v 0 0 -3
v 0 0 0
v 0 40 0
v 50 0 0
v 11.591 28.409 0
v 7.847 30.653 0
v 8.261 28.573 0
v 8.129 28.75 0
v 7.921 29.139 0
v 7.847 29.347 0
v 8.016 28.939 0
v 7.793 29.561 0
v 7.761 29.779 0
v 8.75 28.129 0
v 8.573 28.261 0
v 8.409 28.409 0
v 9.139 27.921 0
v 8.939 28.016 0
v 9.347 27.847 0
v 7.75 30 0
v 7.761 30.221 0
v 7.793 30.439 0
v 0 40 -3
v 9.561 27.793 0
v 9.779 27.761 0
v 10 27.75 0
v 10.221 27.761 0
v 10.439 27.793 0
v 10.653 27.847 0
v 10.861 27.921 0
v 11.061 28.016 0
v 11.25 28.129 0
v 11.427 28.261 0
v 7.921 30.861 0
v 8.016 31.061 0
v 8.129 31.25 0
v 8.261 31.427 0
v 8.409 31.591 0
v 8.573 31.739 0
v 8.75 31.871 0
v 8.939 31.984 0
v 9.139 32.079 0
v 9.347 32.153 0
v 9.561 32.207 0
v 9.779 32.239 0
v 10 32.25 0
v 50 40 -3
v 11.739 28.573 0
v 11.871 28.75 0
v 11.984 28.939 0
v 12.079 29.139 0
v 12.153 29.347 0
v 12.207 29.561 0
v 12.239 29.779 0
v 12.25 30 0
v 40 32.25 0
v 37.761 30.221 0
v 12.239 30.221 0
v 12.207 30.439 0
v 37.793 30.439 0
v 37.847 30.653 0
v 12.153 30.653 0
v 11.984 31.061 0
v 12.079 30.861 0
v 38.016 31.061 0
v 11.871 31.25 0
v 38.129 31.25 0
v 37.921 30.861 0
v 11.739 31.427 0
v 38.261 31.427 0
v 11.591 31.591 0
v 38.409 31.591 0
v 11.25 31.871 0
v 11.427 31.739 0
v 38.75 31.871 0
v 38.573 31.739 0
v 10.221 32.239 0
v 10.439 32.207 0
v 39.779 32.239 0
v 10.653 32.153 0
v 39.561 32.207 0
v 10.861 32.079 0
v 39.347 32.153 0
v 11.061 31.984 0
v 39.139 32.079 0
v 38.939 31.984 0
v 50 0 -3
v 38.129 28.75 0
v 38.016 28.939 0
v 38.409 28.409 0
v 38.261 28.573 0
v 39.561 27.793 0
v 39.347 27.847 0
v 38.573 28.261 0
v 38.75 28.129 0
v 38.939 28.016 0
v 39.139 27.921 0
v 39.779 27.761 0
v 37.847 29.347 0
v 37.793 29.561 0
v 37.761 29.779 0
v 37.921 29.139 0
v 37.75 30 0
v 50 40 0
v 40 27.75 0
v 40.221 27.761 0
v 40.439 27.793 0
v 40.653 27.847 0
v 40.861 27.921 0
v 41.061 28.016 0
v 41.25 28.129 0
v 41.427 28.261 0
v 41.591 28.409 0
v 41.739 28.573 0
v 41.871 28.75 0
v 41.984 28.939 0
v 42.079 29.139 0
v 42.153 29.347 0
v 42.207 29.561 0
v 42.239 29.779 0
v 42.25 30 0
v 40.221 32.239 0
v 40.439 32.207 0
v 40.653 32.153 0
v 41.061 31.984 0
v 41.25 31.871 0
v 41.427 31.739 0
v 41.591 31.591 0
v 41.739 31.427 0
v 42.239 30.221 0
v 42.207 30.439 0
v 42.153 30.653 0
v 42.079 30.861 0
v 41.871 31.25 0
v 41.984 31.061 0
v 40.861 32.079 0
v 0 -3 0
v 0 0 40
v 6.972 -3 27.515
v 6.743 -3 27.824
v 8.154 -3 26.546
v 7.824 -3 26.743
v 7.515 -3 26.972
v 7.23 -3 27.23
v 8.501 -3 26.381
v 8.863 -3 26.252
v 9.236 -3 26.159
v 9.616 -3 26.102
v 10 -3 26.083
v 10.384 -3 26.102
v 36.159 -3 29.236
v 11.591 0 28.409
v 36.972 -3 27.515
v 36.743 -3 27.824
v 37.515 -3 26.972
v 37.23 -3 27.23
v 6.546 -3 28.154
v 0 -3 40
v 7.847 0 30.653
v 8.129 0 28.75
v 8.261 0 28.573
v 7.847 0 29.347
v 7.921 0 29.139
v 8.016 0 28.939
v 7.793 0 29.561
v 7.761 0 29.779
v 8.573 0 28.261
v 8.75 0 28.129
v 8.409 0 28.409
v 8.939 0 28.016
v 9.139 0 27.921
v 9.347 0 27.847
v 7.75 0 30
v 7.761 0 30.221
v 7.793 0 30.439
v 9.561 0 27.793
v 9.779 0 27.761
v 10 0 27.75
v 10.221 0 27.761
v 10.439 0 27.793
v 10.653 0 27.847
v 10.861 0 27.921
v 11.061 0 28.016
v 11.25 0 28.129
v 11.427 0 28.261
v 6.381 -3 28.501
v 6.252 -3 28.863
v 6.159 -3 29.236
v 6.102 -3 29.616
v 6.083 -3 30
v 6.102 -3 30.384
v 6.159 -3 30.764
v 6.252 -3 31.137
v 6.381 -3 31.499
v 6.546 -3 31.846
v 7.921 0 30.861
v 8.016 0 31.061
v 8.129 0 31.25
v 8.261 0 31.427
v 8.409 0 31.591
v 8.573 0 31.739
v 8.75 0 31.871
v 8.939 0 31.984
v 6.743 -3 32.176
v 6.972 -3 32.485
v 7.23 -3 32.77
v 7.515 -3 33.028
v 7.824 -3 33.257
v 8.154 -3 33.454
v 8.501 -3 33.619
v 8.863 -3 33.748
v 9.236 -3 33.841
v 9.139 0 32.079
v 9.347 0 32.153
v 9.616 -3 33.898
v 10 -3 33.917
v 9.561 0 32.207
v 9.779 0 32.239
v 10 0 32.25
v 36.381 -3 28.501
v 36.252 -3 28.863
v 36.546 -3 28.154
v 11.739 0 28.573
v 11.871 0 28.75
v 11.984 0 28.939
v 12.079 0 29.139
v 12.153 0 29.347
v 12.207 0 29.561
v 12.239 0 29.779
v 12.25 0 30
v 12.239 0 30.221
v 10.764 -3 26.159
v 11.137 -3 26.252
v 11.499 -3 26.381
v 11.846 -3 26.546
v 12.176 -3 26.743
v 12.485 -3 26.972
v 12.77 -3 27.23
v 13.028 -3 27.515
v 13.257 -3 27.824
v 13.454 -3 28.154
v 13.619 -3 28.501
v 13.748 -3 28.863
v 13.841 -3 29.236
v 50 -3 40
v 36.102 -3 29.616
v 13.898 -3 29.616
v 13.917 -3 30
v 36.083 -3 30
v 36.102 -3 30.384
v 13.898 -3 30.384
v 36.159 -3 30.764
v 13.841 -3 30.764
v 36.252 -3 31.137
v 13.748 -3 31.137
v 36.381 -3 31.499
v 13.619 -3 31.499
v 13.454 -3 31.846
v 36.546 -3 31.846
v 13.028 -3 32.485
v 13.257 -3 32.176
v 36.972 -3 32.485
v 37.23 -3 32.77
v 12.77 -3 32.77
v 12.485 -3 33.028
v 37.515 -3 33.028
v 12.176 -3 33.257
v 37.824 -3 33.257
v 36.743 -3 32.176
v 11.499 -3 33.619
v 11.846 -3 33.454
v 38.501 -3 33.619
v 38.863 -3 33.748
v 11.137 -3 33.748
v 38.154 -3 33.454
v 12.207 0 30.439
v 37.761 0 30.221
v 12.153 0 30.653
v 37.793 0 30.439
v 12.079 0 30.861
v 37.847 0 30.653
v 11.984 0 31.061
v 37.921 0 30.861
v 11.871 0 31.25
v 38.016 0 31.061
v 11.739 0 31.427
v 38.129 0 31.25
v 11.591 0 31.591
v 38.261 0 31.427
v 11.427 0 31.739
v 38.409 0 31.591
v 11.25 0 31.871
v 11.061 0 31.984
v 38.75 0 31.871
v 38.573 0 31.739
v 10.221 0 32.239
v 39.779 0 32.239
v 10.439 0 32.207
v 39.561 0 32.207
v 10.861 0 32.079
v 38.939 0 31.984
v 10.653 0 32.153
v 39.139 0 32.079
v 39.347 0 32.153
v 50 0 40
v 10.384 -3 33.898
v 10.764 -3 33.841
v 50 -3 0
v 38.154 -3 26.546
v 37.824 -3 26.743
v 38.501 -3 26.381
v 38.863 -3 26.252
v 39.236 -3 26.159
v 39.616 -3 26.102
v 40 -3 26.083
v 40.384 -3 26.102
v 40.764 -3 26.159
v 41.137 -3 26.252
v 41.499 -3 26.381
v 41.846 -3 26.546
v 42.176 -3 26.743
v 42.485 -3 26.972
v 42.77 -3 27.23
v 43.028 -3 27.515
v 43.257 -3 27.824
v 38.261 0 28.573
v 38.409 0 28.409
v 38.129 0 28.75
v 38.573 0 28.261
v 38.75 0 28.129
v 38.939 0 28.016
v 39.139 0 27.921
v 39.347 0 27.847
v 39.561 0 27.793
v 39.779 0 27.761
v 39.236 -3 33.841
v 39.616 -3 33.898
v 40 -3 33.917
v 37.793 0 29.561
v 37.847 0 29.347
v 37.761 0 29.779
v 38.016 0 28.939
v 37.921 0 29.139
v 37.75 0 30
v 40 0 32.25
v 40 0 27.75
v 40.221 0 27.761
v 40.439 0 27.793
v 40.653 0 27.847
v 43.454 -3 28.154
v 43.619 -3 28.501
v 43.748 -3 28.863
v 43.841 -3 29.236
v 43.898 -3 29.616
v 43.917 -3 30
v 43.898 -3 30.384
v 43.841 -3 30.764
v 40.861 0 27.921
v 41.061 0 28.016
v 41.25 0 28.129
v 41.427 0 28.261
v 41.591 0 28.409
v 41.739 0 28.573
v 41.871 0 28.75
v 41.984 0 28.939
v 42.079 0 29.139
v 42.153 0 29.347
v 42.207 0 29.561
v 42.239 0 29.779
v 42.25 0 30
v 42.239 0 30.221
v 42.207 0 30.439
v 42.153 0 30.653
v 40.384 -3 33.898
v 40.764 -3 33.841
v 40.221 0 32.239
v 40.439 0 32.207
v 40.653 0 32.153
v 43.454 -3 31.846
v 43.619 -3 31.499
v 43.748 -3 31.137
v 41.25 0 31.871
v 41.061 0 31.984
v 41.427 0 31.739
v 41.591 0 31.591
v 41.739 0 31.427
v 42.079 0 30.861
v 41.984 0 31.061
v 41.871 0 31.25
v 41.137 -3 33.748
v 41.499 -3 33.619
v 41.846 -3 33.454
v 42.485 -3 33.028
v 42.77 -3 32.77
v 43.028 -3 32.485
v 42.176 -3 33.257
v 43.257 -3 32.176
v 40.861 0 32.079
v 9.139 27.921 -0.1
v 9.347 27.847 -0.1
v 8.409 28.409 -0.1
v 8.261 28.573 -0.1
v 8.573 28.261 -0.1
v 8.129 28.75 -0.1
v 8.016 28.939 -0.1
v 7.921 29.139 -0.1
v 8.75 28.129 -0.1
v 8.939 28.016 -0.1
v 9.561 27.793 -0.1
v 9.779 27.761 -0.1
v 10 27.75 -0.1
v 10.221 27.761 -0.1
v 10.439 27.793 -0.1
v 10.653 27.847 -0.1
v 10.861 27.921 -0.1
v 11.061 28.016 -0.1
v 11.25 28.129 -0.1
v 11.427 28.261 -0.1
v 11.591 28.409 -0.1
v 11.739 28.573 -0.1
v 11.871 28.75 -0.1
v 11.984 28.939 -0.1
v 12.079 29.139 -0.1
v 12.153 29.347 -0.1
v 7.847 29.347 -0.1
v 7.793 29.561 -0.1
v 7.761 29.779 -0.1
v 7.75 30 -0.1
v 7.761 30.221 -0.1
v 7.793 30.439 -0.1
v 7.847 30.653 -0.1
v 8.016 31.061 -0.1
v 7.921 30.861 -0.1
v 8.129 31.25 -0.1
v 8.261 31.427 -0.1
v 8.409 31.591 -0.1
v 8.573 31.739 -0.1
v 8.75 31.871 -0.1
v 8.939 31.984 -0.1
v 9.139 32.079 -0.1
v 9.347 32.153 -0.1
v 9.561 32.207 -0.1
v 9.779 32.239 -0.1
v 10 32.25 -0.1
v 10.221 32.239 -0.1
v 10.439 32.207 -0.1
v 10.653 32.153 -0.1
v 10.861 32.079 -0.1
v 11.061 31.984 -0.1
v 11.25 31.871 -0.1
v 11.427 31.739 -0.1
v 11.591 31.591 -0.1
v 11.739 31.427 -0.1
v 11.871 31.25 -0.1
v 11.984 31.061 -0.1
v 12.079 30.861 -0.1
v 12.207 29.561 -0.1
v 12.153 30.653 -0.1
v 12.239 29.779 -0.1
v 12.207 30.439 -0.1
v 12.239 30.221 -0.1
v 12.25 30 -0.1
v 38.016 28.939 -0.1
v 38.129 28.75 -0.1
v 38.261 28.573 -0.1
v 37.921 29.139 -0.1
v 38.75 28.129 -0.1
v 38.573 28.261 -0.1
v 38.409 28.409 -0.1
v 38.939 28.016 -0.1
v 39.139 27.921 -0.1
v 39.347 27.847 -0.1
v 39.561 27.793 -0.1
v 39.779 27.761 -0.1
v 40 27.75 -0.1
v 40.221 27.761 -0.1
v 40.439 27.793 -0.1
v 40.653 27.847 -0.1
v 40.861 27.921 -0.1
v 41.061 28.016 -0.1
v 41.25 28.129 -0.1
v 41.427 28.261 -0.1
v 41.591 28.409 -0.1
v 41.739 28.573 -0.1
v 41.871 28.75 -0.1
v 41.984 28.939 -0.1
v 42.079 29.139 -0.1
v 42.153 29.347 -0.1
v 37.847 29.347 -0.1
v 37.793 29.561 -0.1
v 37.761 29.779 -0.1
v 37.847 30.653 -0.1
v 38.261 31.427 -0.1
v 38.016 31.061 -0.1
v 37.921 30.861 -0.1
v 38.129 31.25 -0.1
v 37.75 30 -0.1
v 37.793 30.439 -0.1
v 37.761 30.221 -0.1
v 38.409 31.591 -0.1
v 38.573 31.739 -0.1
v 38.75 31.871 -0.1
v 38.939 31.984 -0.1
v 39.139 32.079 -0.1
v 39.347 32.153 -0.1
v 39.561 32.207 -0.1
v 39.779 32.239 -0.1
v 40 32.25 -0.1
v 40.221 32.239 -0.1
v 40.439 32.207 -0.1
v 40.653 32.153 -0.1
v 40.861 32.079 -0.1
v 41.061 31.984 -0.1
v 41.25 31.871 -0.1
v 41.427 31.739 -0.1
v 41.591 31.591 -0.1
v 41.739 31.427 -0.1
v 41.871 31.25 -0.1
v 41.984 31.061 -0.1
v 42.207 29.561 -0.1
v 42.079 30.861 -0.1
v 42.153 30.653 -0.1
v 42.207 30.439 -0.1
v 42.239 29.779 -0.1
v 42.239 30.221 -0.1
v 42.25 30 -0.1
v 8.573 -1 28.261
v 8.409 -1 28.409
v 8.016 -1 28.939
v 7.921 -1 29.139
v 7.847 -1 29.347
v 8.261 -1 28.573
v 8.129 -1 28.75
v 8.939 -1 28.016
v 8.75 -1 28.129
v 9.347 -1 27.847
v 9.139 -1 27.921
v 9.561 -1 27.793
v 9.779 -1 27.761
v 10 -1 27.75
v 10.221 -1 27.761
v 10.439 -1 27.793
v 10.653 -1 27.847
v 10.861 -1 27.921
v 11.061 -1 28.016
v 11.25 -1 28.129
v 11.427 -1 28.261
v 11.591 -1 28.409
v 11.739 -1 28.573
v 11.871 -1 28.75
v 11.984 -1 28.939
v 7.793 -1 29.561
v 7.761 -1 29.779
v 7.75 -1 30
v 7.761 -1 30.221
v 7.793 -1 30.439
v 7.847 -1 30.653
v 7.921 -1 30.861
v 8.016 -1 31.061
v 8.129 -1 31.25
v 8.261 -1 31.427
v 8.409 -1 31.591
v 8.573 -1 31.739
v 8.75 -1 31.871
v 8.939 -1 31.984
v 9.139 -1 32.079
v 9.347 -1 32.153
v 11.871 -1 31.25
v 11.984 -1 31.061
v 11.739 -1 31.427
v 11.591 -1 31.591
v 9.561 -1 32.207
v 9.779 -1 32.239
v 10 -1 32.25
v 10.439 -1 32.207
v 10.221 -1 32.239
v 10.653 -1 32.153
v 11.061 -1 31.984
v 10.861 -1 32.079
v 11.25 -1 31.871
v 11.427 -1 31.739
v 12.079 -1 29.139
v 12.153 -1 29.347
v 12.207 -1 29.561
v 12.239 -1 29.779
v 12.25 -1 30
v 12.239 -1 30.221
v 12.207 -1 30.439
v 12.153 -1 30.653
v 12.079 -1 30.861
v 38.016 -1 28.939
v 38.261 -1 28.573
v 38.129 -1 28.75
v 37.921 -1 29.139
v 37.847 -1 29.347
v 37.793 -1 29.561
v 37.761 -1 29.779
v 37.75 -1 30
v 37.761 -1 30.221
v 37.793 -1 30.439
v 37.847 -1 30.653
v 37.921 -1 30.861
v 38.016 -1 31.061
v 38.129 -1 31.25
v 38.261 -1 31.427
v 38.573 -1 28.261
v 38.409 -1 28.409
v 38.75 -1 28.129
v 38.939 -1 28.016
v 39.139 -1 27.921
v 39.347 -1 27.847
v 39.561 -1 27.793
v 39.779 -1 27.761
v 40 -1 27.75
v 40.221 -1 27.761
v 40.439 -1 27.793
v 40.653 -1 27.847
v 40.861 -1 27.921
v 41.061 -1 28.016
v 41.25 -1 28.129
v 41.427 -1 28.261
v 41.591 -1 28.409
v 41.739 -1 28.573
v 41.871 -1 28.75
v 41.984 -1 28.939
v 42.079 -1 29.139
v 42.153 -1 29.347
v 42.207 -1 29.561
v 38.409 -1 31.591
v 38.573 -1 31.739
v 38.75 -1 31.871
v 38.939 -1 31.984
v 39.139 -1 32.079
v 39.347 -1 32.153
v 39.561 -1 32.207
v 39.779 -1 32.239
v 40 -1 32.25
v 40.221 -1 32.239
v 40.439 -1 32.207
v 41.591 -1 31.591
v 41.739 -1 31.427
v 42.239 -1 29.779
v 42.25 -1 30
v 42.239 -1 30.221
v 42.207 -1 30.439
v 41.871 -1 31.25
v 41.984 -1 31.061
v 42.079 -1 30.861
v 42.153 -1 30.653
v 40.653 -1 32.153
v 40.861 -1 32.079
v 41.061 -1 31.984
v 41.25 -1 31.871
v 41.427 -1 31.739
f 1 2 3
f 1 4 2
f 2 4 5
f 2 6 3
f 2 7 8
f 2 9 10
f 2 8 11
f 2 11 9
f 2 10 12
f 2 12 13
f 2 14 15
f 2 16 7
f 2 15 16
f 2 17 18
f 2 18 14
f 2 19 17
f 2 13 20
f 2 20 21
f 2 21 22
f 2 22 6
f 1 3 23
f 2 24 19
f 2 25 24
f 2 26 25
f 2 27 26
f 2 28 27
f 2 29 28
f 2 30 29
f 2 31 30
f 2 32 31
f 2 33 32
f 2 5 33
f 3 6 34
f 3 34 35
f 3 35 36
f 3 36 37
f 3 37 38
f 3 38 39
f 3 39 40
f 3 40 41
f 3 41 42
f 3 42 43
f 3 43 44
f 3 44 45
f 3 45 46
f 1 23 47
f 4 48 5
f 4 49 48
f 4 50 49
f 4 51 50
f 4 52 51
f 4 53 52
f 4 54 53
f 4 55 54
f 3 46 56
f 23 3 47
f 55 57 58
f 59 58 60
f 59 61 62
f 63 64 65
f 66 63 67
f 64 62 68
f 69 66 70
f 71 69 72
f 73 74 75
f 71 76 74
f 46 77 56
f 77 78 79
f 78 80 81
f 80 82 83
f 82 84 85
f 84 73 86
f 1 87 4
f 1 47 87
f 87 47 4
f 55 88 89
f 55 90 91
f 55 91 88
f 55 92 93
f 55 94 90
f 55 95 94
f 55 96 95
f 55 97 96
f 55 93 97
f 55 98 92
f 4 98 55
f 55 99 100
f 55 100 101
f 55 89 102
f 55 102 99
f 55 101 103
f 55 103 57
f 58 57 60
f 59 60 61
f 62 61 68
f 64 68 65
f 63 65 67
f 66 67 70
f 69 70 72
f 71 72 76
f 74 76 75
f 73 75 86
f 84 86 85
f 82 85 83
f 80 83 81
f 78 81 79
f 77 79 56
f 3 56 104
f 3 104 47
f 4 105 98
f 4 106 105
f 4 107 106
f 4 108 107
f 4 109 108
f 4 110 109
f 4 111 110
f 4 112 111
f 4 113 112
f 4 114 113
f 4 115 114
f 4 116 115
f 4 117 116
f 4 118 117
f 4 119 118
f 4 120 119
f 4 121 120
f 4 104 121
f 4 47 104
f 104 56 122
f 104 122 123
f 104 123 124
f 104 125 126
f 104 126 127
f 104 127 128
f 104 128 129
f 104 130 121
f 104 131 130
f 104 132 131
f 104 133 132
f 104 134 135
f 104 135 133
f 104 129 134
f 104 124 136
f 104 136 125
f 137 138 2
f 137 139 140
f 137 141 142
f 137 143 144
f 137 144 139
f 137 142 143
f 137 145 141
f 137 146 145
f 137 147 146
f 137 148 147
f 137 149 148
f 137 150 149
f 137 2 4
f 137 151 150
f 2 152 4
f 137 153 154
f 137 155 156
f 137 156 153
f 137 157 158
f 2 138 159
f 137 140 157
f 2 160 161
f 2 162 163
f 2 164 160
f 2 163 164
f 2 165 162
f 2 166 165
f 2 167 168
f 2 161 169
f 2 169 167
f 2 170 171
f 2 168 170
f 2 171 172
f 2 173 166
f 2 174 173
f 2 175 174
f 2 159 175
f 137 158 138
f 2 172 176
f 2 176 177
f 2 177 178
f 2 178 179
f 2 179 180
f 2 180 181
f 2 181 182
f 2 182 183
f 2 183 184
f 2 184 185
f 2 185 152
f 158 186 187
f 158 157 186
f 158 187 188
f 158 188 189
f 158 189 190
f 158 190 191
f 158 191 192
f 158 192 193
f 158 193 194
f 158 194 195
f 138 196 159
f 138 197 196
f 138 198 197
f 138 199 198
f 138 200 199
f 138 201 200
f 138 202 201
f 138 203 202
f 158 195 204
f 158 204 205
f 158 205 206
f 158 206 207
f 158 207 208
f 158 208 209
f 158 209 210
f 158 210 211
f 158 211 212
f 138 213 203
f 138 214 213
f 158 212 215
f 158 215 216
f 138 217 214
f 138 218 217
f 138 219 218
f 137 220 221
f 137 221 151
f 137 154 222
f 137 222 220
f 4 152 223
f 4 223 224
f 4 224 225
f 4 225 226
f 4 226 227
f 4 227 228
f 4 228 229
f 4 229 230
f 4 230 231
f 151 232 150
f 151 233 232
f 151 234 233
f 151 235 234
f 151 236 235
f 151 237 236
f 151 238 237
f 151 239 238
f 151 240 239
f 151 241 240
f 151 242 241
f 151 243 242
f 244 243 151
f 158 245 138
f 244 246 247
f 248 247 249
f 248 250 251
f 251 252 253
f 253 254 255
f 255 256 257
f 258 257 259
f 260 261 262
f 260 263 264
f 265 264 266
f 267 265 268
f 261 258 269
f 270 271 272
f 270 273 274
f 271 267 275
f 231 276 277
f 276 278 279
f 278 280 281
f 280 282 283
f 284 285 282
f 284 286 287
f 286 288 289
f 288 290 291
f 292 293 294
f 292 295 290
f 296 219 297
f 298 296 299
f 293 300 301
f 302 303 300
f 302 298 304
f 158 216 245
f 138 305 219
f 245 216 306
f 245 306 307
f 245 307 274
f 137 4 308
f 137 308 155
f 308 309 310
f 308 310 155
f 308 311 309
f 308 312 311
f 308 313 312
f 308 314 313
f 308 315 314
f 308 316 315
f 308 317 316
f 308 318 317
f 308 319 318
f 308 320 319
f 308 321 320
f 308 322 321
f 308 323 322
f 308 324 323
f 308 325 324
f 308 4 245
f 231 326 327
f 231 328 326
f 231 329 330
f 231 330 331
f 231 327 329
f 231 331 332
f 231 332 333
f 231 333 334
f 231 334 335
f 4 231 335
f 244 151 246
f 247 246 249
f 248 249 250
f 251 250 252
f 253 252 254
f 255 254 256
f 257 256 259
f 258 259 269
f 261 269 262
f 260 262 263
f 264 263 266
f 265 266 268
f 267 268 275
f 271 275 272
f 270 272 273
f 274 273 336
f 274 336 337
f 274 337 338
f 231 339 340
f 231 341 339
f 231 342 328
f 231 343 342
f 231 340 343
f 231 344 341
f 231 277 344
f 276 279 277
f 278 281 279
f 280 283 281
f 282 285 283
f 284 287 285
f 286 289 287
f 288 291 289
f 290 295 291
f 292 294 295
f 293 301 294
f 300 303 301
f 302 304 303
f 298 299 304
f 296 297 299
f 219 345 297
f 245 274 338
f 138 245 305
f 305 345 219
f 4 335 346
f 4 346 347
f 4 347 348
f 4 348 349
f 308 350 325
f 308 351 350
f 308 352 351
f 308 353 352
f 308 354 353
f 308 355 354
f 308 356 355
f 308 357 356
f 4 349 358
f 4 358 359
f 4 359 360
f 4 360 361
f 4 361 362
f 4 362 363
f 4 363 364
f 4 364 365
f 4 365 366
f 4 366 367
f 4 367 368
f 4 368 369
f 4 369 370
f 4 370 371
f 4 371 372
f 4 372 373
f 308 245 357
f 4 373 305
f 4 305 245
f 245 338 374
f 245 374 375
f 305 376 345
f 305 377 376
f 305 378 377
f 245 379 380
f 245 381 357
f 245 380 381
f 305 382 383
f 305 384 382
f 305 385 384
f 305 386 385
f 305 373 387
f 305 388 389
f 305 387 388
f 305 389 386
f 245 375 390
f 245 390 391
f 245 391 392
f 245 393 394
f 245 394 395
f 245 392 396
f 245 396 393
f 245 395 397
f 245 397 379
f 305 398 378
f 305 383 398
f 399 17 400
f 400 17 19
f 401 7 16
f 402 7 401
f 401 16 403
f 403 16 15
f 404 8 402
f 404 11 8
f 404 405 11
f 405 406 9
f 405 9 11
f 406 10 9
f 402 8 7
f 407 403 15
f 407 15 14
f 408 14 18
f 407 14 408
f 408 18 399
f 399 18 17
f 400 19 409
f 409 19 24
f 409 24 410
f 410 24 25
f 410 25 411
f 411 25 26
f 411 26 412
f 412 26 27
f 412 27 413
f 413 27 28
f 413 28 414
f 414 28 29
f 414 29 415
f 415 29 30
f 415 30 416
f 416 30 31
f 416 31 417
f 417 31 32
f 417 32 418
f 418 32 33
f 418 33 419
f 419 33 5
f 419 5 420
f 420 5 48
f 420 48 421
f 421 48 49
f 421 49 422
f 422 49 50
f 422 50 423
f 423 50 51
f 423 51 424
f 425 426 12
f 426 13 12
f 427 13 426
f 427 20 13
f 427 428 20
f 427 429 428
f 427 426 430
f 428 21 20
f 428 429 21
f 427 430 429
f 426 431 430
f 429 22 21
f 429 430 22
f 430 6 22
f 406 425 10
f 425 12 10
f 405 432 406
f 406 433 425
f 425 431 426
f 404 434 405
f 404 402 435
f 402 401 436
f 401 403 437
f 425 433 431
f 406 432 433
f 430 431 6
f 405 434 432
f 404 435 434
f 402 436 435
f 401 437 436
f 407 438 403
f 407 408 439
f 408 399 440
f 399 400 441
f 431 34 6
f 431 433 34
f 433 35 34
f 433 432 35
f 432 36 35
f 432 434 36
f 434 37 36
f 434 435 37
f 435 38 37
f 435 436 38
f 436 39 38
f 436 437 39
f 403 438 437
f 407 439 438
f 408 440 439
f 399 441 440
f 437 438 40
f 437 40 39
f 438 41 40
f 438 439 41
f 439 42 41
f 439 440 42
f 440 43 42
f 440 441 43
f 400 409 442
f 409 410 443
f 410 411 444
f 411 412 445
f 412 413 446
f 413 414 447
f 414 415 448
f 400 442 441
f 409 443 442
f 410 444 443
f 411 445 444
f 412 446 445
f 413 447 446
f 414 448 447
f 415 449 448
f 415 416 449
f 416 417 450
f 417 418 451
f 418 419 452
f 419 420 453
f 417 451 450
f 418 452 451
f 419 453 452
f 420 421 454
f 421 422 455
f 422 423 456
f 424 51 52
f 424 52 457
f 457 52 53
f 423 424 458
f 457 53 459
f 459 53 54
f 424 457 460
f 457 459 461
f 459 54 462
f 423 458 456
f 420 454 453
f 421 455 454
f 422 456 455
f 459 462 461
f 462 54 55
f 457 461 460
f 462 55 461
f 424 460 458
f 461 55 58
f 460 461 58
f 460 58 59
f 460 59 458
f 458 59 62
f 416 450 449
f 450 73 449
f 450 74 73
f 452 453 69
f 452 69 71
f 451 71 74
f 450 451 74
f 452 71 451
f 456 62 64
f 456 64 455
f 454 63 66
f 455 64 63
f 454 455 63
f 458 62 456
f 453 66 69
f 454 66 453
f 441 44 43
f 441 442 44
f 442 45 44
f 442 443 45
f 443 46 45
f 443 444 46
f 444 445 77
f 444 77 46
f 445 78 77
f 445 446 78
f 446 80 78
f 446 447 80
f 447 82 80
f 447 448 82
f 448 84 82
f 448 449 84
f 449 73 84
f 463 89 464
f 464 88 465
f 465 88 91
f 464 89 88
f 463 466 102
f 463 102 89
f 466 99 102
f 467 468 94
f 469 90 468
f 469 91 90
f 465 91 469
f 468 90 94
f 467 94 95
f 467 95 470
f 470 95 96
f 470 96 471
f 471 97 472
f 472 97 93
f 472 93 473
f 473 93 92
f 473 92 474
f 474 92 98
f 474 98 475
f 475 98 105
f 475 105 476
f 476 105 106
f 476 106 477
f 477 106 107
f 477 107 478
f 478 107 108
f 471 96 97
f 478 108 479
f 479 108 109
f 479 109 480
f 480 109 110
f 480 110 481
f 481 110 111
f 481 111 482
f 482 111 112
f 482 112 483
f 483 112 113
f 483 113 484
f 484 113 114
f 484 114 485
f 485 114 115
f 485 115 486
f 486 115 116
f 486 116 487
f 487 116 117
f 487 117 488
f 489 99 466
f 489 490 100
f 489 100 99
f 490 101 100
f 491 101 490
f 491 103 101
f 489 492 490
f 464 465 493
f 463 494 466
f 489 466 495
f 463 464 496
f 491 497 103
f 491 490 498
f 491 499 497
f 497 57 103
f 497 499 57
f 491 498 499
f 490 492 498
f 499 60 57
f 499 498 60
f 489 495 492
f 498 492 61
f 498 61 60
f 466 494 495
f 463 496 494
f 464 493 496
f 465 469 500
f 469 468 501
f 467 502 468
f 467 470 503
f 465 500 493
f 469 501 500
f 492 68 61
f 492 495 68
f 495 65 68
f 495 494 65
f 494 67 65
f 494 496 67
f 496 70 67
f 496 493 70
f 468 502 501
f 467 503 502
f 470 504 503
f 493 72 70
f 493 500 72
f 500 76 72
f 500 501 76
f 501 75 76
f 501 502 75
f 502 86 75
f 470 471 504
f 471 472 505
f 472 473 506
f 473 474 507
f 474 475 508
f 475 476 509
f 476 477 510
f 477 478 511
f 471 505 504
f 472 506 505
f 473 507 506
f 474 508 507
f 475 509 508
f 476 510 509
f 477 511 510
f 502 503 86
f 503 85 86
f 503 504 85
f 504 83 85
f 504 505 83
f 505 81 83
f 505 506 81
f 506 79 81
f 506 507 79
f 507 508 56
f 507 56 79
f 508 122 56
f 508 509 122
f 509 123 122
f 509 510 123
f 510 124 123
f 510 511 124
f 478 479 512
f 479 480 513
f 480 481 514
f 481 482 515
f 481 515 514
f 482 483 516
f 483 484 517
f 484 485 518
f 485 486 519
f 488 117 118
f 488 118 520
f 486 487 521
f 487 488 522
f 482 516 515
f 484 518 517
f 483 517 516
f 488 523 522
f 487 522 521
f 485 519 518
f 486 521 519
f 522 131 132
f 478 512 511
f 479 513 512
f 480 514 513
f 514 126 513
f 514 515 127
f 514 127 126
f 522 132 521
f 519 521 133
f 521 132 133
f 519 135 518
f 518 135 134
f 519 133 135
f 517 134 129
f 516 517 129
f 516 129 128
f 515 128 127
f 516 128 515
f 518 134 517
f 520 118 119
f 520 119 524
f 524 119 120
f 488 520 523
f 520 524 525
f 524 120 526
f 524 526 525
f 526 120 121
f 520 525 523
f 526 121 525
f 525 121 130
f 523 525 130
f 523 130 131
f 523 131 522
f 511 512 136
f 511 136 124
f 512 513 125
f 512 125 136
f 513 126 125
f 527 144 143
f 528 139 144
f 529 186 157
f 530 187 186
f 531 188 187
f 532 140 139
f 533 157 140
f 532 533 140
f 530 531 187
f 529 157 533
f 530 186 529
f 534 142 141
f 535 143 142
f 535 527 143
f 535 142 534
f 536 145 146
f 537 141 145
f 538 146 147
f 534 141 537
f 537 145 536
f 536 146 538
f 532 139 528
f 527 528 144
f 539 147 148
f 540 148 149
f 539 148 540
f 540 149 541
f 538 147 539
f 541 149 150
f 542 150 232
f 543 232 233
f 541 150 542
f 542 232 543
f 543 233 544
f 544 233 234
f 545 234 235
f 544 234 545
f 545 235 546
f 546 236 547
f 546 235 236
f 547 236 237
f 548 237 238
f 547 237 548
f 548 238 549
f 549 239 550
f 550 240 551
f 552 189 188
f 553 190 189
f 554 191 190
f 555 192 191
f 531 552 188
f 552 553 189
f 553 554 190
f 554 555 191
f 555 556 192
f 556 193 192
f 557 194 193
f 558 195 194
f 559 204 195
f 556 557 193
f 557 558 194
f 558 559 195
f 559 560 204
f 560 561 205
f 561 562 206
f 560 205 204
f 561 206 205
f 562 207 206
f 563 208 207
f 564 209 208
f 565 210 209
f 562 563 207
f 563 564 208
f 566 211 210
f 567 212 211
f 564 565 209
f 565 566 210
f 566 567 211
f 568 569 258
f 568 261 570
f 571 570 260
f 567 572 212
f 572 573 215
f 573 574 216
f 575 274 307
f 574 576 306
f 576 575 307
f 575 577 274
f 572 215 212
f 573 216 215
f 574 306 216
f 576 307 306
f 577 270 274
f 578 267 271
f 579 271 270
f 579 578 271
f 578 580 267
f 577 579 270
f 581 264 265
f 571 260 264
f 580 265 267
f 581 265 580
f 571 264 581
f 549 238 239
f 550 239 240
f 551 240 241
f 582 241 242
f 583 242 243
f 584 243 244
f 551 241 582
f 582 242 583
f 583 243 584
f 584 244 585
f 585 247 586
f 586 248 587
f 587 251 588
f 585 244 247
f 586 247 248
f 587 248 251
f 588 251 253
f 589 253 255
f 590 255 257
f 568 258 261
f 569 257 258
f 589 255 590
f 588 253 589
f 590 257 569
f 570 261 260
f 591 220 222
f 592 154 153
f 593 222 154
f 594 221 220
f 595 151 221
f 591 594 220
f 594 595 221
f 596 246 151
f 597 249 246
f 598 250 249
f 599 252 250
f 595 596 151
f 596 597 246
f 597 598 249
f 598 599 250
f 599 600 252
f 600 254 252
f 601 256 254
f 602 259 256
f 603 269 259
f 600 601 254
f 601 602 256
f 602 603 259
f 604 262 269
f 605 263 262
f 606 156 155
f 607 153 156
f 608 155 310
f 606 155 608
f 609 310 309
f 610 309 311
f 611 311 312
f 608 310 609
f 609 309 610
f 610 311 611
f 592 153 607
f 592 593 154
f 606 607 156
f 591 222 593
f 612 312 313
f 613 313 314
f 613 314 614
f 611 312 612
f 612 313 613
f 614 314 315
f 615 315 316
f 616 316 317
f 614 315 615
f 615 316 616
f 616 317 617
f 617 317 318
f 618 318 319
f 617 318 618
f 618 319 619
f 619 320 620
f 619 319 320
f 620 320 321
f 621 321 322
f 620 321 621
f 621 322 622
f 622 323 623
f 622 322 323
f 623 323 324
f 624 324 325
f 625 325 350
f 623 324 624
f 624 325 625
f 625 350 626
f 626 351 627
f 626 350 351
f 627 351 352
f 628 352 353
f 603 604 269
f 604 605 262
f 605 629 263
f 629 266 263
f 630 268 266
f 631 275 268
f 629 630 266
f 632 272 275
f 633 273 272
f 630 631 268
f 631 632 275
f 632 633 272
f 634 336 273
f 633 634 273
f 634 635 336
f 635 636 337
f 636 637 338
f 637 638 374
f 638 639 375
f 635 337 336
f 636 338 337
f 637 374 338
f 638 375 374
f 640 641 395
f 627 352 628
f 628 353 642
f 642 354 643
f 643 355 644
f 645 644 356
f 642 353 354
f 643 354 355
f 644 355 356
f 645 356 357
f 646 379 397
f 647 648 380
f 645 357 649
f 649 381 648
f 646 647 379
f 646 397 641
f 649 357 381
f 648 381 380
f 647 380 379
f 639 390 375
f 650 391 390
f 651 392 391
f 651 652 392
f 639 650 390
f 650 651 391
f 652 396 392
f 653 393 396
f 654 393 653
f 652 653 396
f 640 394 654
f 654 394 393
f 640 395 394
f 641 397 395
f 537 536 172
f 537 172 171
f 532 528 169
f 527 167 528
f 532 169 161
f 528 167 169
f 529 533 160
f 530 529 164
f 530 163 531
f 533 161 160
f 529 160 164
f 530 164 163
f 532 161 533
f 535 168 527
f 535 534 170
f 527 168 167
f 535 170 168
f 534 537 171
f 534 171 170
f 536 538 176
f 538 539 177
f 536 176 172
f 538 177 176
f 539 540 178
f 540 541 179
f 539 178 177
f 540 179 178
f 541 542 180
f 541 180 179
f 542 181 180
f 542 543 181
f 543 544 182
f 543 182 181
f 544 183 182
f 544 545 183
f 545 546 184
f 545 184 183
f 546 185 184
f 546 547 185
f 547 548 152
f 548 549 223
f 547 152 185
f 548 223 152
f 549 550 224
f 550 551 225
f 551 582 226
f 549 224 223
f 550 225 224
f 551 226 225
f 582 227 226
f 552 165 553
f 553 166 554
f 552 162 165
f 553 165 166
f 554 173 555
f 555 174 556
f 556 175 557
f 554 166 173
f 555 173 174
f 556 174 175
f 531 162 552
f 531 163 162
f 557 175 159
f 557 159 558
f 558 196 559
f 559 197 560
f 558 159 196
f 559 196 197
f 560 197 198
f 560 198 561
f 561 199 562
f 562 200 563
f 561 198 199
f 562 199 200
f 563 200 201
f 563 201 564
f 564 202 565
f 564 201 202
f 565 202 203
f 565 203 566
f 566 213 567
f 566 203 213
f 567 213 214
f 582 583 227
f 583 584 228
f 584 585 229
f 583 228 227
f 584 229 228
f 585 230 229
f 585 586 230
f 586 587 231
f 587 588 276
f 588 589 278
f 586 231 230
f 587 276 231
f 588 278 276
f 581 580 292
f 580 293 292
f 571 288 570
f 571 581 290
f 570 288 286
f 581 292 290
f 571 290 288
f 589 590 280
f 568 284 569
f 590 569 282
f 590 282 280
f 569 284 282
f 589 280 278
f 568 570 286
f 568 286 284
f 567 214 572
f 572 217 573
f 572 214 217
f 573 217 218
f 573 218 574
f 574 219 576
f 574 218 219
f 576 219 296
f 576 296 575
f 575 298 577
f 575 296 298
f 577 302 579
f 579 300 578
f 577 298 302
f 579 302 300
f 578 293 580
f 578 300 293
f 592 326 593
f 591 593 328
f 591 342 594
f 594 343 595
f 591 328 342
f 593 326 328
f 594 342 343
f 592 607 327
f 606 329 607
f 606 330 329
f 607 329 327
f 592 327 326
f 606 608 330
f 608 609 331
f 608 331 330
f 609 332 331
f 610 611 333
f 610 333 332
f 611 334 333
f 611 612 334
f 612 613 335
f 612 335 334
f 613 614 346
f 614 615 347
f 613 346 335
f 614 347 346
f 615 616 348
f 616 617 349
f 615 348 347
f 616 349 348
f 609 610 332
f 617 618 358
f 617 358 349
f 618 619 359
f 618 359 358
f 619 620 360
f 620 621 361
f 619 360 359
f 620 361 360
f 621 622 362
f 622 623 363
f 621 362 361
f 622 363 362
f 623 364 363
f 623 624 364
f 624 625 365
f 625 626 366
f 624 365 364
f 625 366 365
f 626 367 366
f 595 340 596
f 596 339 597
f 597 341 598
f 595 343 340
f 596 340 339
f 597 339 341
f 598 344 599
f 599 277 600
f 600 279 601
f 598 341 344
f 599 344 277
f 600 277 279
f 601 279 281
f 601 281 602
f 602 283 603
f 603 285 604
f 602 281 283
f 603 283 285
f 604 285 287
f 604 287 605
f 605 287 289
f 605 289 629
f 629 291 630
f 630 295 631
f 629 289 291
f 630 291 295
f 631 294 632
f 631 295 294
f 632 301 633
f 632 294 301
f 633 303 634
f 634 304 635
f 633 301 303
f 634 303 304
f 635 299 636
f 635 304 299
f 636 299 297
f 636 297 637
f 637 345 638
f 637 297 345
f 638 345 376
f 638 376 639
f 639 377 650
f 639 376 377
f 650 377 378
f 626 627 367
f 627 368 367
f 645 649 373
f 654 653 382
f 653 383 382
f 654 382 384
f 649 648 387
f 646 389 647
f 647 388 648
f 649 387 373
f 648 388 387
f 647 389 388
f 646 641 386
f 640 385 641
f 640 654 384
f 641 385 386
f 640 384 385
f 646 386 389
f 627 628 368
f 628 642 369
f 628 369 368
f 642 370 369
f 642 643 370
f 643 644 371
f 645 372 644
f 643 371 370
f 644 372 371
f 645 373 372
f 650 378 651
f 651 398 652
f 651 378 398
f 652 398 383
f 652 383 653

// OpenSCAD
// L-Bracket (L字金具)
// 内側コーナーが原点、水平面は+Y方向、垂直面は+Z方向

width    = 50;   // 幅 (X方向)
fl_horiz = 40;   // 水平フランジ奥行き (Y方向)
fl_vert  = 40;   // 垂直フランジ高さ (Z方向)
t        = 3;    // 板厚
hole_d   = 4.5;  // 貫通穴径
cs_d     = 8;    // 皿座面径
cs_dep   = 2;    // 皿座面深さ
inset    = 10;   // 縁からの距離
eps      = 0.1;  // 干渉回避用微小値

// 穴のX位置: 幅50mm、縁から10mm内側 → X=10 と X=40
hole_xs = [inset, width - inset];

module countersunk_hole_vertical(depth) {
    // 上から下へ: 皿座面は上(外側=上面)
    translate([0, 0, depth])
        rotate([180, 0, 0]) {
            cylinder(d1=cs_d, d2=hole_d, h=cs_dep + eps, $fn=64);
            translate([0, 0, cs_dep])
                cylinder(d=hole_d, h=depth - cs_dep + eps, $fn=64);
        }
}

module countersunk_hole_horizontal(depth) {
    // 前面(Y=-t)から後方(+Y)へ掘る: 皿座面は前(外側=前面)
    cylinder(d1=cs_d, d2=hole_d, h=cs_dep + eps, $fn=64);
    translate([0, 0, cs_dep])
        cylinder(d=hole_d, h=depth - cs_dep + eps, $fn=64);
}

module l_bracket() {
    difference() {
        union() {
            // 水平面: X[0~50], Y[0~40], Z[-3~0]
            translate([0, 0, -t])
                cube([width, fl_horiz, t]);

            // 垂直面: X[0~50], Y[-3~0], Z[0~40]
            translate([0, -t, 0])
                cube([width, t, fl_vert]);
        }

        // --- 水平面の皿穴 ---
        // 外側 = 上面(Z=0)、穴は上から下へ
        // Y位置: 縁(Y=fl_horiz)から inset 内側 → Y = fl_horiz - inset = 30
        for (x = hole_xs) {
            translate([x, fl_horiz - inset, 0])
                countersunk_hole_vertical(t + 2*eps);
        }

        // --- 垂直面の皿穴 ---
        // 外側 = 前面(Y=-t)、穴は前面から後方(+Y)へ
        // Z位置: 縁(Z=fl_vert)から inset 内側 → Z = fl_vert - inset = 30
        for (x = hole_xs) {
            translate([x, -t - eps, fl_vert - inset])
                rotate([-90, 0, 0])
                    countersunk_hole_horizontal(t + 2*eps);
        }
    }
}

l_bracket();
